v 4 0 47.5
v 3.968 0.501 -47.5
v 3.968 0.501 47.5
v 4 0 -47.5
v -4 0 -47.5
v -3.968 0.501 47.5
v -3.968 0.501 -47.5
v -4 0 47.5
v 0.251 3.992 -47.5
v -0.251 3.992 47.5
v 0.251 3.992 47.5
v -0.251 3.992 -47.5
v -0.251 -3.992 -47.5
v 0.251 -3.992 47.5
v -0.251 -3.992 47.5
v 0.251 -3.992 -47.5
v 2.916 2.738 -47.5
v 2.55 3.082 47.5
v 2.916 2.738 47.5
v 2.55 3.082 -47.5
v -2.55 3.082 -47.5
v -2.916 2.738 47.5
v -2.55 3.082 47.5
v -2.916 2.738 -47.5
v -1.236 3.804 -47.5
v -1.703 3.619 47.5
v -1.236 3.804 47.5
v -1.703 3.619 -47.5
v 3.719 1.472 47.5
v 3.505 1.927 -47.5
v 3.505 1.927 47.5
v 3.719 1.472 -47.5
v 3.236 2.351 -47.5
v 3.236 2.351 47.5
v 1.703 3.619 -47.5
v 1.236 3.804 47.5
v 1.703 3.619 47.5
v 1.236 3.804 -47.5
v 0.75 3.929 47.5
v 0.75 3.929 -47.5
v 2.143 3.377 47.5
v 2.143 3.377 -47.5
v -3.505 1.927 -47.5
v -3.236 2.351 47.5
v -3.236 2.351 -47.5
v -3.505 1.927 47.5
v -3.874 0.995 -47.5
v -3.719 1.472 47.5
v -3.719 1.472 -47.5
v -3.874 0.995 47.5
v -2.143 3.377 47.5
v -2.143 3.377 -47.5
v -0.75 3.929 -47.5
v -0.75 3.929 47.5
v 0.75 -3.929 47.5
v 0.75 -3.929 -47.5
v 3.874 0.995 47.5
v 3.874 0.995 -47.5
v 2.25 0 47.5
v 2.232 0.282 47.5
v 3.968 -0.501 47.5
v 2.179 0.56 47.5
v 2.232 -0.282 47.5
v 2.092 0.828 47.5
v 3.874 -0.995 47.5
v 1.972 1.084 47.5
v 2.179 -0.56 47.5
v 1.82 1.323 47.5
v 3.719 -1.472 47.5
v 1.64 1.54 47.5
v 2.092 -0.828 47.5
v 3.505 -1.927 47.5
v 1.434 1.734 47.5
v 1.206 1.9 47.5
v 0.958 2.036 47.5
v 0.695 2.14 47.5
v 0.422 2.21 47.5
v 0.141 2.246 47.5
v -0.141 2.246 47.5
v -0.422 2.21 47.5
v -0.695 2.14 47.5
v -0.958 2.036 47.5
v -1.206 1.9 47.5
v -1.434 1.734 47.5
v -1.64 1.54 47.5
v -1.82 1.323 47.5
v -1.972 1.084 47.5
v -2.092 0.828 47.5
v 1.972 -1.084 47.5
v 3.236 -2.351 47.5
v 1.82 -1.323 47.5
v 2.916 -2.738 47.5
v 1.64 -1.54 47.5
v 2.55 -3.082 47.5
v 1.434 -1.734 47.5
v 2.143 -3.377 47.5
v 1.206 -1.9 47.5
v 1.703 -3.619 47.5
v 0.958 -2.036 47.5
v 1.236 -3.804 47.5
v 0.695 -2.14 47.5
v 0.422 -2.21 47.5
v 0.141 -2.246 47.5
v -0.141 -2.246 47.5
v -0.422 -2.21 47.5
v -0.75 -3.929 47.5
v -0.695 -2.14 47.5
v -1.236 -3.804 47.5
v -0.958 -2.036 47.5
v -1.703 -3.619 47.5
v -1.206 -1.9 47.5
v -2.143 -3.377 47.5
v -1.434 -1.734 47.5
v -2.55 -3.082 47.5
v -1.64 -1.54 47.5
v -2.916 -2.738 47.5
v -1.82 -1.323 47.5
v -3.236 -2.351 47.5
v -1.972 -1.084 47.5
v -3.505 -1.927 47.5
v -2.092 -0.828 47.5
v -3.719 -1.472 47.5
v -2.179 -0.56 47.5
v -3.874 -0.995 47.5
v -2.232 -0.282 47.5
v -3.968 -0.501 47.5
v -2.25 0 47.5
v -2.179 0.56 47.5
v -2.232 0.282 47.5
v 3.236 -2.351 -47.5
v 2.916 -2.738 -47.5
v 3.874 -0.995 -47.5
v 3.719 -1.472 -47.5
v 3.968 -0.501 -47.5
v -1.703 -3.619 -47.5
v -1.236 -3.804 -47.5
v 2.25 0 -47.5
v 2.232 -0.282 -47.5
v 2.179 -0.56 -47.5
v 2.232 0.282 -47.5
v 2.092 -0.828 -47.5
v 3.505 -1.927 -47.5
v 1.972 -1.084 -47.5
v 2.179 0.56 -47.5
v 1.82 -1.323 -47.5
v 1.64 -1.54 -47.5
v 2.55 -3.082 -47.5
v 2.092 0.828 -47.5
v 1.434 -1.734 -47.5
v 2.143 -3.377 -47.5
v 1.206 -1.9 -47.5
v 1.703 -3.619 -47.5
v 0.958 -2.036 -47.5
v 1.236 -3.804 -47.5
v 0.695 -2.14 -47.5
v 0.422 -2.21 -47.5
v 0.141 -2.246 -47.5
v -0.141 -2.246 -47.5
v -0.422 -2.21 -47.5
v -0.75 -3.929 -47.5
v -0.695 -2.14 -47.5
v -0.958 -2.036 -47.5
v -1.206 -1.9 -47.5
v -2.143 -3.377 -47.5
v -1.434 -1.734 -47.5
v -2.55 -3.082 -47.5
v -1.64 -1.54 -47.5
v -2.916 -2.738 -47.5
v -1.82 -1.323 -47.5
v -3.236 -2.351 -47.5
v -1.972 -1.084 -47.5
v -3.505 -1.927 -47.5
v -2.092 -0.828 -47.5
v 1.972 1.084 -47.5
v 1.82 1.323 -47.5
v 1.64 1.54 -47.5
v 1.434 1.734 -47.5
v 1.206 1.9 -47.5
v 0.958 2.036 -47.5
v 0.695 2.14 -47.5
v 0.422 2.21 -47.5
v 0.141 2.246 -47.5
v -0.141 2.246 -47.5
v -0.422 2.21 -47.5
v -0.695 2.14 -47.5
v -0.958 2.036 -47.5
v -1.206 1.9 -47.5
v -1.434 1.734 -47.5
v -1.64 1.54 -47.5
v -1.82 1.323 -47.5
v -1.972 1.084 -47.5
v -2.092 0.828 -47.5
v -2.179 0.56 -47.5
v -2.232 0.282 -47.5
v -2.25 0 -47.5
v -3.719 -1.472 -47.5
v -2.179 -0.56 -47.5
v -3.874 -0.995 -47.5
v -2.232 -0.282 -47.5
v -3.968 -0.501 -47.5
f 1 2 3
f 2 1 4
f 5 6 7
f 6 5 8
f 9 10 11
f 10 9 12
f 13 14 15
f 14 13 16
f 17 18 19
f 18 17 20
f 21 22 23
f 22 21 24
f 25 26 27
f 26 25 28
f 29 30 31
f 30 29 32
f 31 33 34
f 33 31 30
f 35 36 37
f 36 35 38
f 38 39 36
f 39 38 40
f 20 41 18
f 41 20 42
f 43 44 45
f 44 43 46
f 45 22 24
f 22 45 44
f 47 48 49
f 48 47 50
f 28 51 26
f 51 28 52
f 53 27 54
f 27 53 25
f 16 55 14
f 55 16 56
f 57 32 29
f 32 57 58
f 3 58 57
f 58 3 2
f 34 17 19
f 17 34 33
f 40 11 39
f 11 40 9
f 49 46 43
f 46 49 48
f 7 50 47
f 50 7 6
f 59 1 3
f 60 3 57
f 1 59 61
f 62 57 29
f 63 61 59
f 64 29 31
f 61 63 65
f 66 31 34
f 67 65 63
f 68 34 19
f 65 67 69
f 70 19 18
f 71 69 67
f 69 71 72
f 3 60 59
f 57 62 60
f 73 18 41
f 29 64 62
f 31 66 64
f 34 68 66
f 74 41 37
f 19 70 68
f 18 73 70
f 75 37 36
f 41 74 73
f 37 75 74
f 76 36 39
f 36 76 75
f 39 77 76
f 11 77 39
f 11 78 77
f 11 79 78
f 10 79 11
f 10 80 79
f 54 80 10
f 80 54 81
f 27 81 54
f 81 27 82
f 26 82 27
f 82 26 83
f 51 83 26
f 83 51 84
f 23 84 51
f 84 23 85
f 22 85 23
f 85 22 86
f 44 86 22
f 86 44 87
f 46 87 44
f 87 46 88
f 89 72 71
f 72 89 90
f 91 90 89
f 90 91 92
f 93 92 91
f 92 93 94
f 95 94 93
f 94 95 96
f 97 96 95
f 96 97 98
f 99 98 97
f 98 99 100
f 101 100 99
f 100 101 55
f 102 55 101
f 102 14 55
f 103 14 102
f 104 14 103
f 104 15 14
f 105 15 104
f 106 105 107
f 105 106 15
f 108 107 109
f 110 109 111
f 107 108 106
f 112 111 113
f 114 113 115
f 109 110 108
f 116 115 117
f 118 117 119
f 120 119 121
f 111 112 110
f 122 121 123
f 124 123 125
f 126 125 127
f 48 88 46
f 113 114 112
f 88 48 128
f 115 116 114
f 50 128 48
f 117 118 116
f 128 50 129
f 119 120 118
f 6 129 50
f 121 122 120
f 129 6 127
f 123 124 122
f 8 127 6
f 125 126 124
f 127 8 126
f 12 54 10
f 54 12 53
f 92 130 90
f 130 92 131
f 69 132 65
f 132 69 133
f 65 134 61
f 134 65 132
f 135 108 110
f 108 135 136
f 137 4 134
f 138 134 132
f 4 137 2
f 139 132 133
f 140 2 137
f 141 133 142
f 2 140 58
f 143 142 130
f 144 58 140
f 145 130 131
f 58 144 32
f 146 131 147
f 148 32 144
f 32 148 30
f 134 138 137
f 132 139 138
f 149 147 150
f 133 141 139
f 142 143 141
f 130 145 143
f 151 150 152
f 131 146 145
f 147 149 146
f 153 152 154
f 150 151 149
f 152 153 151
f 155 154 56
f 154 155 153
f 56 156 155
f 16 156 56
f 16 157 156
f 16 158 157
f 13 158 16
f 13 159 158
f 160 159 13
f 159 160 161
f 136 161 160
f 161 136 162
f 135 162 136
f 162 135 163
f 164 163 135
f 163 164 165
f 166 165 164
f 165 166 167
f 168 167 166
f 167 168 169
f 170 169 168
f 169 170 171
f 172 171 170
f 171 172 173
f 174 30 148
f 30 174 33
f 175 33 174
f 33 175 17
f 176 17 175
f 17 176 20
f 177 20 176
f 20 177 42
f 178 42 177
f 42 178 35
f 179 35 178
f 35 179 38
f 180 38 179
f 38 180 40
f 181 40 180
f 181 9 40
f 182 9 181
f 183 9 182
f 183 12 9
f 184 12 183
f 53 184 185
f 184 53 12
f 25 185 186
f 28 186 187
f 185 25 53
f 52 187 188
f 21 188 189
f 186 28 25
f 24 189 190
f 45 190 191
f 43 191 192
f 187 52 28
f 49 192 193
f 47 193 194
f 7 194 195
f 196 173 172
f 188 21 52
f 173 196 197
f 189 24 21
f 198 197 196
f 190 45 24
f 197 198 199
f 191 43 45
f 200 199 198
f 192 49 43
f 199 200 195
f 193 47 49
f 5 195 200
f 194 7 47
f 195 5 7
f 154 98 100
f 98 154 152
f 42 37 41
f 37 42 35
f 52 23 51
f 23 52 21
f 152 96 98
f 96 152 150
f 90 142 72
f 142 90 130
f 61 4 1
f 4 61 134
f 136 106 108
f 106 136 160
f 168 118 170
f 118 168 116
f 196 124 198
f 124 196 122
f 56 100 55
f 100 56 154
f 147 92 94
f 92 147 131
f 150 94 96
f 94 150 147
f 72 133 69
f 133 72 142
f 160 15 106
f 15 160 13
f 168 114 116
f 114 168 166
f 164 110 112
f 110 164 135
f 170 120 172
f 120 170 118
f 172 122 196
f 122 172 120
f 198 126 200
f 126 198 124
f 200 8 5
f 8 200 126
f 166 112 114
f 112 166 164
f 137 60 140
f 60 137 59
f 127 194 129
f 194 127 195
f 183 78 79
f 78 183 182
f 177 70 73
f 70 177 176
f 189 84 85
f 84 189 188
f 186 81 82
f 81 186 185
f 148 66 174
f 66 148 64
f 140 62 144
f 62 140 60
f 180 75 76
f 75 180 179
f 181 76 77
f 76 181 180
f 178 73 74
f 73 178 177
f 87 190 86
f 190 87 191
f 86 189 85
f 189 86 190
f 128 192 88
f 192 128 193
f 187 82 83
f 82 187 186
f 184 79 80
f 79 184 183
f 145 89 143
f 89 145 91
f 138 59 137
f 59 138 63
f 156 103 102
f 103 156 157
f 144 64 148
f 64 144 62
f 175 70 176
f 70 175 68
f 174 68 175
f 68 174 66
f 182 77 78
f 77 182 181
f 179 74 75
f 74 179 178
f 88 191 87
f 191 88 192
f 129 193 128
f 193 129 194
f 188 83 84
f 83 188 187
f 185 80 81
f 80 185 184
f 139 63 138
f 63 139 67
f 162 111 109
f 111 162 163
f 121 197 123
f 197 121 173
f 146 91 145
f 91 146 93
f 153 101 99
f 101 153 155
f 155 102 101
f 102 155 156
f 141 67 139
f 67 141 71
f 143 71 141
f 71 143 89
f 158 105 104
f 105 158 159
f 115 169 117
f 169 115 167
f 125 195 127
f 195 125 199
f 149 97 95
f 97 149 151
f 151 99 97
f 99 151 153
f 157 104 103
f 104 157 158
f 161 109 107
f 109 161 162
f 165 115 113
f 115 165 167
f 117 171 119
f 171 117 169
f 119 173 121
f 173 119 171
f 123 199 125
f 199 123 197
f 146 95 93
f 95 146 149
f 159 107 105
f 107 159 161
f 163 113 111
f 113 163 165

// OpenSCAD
$fn = 50;


difference() {
	union() {
		translate(v = [0, 0, -47.5000000000]) {
			cylinder(h = 95, r = 4.0000000000);
		}
	}
	union() {
		translate(v = [0, 0, -100.0000000000]) {
			cylinder(h = 200, r = 2.2500000000);
		}
	}
}
